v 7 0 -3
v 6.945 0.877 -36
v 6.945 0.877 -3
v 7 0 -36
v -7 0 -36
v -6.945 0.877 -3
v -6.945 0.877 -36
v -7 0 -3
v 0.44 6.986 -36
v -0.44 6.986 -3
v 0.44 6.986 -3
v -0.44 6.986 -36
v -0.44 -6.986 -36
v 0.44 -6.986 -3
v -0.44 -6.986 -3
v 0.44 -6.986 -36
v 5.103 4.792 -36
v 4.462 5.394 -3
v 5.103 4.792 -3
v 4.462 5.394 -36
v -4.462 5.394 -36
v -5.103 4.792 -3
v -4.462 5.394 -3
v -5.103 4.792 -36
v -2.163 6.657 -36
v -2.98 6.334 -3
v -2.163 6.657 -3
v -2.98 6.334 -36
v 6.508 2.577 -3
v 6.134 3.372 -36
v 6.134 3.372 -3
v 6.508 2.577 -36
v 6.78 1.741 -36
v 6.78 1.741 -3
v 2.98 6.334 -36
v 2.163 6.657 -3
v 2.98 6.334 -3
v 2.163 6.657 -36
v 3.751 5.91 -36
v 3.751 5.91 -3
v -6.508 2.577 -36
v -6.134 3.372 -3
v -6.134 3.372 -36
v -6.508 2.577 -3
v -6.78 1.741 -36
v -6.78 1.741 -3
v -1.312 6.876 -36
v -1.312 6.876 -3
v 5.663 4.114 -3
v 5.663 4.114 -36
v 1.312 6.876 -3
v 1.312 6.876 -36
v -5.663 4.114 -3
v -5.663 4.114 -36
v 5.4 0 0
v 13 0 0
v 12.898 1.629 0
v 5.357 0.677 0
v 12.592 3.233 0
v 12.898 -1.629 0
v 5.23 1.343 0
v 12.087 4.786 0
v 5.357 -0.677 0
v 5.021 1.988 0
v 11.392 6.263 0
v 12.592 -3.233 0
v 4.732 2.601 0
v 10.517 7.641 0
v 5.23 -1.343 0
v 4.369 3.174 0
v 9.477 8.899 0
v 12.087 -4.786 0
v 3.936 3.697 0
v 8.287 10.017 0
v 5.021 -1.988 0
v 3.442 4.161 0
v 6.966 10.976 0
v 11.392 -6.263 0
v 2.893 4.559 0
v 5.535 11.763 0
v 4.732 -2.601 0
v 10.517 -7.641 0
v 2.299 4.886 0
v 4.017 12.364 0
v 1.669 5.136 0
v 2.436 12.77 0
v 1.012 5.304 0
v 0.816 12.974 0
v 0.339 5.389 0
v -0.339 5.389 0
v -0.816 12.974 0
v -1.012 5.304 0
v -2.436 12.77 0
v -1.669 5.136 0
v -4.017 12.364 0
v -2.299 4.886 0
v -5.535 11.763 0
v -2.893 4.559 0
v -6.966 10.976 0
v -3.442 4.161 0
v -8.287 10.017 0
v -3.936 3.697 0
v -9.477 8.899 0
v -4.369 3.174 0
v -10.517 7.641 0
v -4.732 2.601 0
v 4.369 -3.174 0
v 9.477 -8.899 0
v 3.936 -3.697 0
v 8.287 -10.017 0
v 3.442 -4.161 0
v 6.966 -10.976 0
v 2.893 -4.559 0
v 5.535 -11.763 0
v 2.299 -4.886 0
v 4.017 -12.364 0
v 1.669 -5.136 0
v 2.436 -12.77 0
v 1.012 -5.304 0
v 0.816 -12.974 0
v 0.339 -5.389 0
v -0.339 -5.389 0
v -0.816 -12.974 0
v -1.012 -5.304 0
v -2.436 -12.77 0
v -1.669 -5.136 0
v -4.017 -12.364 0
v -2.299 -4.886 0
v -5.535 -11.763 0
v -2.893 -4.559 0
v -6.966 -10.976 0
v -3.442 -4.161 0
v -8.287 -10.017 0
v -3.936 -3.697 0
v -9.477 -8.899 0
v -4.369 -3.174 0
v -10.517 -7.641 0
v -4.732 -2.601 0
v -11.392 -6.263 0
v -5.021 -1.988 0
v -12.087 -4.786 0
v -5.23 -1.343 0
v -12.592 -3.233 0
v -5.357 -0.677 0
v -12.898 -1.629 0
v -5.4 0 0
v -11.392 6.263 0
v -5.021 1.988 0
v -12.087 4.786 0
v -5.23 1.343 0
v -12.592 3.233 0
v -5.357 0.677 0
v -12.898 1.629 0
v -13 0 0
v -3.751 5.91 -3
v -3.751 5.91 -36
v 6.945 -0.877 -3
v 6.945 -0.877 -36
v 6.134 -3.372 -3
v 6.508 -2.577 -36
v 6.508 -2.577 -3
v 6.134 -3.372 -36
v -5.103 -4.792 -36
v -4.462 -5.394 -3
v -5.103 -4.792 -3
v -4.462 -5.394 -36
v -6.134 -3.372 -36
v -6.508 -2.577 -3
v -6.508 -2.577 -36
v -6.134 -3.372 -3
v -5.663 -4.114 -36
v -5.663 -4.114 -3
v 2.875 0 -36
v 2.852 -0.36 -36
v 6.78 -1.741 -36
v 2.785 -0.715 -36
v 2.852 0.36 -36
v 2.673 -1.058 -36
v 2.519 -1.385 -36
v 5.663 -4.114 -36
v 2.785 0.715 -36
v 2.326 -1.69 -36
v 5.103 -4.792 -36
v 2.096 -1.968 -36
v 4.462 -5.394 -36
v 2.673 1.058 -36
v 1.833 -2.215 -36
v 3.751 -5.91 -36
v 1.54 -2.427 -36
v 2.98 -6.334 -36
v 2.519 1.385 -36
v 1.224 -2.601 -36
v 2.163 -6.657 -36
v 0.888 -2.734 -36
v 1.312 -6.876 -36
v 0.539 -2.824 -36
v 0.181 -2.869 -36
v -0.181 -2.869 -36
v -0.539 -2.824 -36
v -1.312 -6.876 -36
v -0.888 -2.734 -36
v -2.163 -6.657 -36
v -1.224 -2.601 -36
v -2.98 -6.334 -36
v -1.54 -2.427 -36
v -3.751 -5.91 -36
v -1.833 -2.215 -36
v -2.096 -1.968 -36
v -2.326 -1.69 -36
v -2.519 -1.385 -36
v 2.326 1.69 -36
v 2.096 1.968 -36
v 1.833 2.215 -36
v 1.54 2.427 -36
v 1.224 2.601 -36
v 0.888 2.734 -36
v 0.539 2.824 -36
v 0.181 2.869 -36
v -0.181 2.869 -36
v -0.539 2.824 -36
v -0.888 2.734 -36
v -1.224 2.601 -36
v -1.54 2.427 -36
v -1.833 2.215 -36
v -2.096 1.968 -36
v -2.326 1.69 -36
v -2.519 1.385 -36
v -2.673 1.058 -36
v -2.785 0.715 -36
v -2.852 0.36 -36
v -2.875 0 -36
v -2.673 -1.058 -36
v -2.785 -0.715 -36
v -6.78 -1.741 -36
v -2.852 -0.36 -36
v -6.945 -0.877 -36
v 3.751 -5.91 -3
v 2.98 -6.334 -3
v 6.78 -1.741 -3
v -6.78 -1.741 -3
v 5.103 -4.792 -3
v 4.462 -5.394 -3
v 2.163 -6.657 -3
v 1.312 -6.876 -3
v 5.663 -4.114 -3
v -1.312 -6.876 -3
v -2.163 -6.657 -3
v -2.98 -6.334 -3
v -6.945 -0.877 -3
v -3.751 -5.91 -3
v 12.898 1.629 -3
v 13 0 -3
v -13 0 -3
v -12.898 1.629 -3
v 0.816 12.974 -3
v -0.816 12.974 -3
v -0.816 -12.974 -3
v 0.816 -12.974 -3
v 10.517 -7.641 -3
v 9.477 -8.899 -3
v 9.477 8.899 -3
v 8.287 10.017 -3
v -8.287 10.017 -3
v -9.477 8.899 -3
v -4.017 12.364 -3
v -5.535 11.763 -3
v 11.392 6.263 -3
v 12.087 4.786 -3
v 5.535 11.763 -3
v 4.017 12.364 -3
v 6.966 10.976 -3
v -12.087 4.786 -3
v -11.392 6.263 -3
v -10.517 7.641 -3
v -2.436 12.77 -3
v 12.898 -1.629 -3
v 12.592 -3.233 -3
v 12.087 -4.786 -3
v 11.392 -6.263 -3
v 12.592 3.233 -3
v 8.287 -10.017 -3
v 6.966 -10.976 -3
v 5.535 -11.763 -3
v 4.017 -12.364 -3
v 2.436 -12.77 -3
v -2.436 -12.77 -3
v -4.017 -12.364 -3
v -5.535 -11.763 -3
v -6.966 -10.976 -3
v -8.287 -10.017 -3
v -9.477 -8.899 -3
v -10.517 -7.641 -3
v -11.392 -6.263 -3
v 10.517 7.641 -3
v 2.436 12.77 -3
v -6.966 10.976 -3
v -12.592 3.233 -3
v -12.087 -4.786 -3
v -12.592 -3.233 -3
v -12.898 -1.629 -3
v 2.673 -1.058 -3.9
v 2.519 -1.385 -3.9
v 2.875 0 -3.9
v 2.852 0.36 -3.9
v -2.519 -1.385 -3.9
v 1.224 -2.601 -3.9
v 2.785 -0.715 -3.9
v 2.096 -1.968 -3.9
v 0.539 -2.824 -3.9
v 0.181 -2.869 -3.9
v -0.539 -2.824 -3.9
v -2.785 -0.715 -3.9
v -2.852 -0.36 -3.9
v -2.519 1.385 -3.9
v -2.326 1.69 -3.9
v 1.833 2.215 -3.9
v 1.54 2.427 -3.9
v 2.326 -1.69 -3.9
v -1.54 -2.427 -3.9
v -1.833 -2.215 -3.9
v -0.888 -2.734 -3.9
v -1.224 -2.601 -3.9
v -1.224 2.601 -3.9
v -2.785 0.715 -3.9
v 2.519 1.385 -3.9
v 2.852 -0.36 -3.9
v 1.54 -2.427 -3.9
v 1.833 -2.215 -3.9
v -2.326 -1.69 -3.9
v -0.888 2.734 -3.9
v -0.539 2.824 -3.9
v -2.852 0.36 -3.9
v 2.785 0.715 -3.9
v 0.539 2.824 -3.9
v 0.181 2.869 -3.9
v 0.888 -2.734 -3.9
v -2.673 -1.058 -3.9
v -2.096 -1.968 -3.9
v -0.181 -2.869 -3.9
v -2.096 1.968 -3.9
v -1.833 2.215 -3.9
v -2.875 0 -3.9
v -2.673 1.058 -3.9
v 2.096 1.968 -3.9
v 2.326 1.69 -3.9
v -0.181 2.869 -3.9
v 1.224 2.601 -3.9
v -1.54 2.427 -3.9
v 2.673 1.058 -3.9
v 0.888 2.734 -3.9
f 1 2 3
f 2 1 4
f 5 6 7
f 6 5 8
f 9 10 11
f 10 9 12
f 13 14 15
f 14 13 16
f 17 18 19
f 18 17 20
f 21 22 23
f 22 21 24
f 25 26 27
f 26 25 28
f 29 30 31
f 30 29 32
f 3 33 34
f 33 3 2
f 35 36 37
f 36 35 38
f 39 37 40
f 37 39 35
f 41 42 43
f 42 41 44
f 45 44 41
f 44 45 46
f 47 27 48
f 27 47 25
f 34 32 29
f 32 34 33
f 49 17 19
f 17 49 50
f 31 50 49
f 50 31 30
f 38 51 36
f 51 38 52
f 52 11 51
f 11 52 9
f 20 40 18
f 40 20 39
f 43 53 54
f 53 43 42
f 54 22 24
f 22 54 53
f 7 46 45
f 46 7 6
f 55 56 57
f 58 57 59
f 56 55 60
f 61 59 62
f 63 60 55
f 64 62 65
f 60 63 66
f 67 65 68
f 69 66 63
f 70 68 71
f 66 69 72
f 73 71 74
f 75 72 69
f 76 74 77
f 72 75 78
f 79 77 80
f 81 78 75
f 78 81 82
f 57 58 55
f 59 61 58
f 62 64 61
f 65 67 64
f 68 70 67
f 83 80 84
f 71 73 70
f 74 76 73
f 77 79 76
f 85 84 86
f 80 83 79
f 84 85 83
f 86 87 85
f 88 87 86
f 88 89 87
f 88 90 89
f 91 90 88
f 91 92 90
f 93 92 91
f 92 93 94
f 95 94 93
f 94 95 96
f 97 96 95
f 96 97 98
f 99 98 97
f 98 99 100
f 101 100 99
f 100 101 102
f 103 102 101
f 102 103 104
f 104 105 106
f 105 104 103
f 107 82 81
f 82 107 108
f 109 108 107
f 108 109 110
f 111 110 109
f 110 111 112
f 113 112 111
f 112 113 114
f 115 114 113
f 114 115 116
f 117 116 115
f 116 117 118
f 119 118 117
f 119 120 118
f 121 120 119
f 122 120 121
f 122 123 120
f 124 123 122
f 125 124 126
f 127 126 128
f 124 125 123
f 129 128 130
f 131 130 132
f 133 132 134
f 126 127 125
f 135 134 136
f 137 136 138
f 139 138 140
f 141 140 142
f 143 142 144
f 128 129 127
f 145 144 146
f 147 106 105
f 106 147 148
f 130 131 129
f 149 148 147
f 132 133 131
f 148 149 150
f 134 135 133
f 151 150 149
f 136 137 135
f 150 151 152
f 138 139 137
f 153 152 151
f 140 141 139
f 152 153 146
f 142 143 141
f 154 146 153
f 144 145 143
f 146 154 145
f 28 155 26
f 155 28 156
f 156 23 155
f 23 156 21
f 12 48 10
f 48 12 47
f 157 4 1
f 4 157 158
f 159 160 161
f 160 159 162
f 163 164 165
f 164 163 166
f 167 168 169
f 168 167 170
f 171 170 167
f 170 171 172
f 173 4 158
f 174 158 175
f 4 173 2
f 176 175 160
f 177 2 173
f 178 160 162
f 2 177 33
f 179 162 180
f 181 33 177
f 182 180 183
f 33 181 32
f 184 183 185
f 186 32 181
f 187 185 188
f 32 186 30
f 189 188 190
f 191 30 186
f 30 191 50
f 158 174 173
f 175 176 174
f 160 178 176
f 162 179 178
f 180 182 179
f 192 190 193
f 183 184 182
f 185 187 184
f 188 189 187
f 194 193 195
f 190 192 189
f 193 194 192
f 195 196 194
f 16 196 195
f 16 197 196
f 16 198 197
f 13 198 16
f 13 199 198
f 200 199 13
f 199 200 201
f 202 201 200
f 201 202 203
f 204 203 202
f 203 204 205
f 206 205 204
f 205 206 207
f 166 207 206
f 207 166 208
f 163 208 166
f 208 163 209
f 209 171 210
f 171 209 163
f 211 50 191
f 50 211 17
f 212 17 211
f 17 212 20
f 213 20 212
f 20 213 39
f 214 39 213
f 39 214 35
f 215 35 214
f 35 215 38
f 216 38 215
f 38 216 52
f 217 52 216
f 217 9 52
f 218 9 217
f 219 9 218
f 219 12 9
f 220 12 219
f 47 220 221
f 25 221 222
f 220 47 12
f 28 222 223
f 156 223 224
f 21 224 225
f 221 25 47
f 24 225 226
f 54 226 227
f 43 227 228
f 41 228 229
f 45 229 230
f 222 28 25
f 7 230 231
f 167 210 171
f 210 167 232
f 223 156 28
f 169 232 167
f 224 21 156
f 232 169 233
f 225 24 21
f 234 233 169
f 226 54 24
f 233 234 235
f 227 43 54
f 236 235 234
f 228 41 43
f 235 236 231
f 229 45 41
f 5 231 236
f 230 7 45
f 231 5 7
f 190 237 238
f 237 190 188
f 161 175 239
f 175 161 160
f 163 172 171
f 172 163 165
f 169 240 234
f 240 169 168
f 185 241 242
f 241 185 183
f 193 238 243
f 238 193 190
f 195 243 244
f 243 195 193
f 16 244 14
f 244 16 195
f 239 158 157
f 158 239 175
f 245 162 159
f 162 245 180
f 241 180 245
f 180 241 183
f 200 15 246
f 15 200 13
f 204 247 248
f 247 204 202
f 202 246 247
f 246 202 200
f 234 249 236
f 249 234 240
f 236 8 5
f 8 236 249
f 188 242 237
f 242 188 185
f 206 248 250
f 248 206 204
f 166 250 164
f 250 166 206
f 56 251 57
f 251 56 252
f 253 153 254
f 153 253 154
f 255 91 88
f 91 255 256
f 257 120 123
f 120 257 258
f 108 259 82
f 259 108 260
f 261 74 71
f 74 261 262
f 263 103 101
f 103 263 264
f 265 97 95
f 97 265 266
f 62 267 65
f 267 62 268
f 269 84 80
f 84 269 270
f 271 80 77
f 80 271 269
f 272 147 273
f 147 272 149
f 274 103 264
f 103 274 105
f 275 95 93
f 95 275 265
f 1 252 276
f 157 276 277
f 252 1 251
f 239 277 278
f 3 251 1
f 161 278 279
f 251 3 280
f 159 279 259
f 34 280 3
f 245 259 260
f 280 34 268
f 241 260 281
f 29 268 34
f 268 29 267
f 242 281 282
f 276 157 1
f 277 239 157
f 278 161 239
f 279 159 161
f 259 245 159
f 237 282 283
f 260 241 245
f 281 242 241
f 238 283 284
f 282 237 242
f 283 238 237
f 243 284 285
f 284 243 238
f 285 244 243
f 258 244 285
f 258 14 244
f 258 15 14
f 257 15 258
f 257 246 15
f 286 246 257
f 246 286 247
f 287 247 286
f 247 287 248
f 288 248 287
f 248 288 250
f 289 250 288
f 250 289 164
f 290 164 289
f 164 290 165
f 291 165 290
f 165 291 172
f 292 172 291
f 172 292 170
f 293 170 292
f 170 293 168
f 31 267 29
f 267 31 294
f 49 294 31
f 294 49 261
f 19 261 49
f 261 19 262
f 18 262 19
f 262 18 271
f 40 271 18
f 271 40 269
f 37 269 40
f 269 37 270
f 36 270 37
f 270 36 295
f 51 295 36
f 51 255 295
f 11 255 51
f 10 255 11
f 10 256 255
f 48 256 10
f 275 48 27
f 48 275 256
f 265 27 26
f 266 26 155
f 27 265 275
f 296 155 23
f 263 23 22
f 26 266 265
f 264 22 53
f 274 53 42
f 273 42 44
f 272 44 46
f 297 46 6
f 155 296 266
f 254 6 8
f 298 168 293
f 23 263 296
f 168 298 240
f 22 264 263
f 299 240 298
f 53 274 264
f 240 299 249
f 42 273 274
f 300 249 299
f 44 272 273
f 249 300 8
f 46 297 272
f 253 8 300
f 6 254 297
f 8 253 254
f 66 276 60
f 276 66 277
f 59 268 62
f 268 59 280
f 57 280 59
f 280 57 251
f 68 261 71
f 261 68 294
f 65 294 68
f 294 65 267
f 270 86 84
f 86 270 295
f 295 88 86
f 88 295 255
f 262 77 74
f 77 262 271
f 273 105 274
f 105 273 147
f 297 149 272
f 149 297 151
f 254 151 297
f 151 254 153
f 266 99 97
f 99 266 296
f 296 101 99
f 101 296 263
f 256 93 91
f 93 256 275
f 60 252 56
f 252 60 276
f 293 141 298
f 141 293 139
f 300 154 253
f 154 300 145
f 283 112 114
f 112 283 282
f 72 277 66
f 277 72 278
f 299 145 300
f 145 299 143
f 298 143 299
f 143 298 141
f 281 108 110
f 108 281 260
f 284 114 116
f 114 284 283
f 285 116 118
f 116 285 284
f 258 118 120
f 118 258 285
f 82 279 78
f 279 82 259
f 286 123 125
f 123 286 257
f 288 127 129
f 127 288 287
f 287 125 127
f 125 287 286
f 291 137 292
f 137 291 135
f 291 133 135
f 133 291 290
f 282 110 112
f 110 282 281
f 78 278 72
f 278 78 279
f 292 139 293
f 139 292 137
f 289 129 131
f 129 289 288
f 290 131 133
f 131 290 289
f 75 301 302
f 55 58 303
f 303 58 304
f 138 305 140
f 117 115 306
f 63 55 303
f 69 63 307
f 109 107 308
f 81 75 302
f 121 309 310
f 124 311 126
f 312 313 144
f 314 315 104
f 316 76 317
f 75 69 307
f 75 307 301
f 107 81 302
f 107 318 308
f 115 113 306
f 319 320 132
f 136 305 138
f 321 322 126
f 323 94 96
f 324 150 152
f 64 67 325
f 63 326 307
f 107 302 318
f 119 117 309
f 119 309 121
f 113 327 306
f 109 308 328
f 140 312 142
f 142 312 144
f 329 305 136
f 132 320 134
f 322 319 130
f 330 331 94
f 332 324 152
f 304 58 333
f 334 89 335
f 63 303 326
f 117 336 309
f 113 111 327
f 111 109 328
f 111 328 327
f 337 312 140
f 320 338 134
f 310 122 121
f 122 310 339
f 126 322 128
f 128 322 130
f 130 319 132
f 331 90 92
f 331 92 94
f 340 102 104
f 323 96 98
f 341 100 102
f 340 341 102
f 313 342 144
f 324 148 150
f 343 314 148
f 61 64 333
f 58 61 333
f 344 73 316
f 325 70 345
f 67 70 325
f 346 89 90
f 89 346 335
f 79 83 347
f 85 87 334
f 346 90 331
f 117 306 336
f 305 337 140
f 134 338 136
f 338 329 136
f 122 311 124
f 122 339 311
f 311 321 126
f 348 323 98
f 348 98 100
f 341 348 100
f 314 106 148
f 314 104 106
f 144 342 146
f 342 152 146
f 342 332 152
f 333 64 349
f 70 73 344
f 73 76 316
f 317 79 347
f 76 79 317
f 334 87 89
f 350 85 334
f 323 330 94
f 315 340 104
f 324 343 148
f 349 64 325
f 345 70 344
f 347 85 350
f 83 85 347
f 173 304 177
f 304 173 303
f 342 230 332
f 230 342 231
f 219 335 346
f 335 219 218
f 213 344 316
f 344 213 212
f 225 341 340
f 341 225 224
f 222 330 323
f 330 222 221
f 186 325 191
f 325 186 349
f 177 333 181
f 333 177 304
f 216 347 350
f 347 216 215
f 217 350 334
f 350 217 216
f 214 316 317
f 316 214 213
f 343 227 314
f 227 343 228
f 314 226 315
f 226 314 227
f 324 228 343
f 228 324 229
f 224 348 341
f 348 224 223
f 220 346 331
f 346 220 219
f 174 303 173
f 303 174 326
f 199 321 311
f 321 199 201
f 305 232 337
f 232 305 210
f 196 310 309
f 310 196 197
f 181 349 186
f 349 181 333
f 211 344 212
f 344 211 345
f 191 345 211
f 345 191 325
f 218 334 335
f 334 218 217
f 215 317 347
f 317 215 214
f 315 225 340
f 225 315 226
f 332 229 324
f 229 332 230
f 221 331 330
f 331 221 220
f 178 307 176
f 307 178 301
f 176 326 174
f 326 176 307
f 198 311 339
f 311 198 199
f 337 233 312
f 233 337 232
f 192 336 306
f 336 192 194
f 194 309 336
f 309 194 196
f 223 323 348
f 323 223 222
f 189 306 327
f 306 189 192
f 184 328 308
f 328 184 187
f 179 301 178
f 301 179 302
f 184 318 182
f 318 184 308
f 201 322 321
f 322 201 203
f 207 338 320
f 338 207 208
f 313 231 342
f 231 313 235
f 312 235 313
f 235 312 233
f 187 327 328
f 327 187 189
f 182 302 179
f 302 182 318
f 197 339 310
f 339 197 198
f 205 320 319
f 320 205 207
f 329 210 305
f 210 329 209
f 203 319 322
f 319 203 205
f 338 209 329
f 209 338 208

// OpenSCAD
$fn = 50;


difference() {
	union() {
		translate(v = [0, 0, -36.0000000000]) {
			cylinder(h = 36, r = 7.0000000000);
		}
		translate(v = [0, 0, -3.0000000000]) {
			cylinder(h = 3, r = 13.0000000000);
		}
	}
	union() {
		translate(v = [0, 0, 0]) {
			rotate(a = [0, 0, 0]) {
				difference() {
					union() {
						#translate(v = [0, 0, -36.0000000000]) {
							cylinder(h = 36, r = 2.6000000000);
						}
						#translate(v = [0, 0, -3.9000000000]) {
							cylinder(h = 3.9000000000, r = 7.0000000000, r1 = 2.8750000000, r2 = 5.4000000000);
						}
						#translate(v = [0, 0, -36.0000000000]) {
							cylinder(h = 36, r = 2.8750000000);
						}
						#translate(v = [0, 0, -36.0000000000]) {
							cylinder(h = 36, r = 2.6000000000);
						}
					}
					union();
				}
			}
		}
	}
}
